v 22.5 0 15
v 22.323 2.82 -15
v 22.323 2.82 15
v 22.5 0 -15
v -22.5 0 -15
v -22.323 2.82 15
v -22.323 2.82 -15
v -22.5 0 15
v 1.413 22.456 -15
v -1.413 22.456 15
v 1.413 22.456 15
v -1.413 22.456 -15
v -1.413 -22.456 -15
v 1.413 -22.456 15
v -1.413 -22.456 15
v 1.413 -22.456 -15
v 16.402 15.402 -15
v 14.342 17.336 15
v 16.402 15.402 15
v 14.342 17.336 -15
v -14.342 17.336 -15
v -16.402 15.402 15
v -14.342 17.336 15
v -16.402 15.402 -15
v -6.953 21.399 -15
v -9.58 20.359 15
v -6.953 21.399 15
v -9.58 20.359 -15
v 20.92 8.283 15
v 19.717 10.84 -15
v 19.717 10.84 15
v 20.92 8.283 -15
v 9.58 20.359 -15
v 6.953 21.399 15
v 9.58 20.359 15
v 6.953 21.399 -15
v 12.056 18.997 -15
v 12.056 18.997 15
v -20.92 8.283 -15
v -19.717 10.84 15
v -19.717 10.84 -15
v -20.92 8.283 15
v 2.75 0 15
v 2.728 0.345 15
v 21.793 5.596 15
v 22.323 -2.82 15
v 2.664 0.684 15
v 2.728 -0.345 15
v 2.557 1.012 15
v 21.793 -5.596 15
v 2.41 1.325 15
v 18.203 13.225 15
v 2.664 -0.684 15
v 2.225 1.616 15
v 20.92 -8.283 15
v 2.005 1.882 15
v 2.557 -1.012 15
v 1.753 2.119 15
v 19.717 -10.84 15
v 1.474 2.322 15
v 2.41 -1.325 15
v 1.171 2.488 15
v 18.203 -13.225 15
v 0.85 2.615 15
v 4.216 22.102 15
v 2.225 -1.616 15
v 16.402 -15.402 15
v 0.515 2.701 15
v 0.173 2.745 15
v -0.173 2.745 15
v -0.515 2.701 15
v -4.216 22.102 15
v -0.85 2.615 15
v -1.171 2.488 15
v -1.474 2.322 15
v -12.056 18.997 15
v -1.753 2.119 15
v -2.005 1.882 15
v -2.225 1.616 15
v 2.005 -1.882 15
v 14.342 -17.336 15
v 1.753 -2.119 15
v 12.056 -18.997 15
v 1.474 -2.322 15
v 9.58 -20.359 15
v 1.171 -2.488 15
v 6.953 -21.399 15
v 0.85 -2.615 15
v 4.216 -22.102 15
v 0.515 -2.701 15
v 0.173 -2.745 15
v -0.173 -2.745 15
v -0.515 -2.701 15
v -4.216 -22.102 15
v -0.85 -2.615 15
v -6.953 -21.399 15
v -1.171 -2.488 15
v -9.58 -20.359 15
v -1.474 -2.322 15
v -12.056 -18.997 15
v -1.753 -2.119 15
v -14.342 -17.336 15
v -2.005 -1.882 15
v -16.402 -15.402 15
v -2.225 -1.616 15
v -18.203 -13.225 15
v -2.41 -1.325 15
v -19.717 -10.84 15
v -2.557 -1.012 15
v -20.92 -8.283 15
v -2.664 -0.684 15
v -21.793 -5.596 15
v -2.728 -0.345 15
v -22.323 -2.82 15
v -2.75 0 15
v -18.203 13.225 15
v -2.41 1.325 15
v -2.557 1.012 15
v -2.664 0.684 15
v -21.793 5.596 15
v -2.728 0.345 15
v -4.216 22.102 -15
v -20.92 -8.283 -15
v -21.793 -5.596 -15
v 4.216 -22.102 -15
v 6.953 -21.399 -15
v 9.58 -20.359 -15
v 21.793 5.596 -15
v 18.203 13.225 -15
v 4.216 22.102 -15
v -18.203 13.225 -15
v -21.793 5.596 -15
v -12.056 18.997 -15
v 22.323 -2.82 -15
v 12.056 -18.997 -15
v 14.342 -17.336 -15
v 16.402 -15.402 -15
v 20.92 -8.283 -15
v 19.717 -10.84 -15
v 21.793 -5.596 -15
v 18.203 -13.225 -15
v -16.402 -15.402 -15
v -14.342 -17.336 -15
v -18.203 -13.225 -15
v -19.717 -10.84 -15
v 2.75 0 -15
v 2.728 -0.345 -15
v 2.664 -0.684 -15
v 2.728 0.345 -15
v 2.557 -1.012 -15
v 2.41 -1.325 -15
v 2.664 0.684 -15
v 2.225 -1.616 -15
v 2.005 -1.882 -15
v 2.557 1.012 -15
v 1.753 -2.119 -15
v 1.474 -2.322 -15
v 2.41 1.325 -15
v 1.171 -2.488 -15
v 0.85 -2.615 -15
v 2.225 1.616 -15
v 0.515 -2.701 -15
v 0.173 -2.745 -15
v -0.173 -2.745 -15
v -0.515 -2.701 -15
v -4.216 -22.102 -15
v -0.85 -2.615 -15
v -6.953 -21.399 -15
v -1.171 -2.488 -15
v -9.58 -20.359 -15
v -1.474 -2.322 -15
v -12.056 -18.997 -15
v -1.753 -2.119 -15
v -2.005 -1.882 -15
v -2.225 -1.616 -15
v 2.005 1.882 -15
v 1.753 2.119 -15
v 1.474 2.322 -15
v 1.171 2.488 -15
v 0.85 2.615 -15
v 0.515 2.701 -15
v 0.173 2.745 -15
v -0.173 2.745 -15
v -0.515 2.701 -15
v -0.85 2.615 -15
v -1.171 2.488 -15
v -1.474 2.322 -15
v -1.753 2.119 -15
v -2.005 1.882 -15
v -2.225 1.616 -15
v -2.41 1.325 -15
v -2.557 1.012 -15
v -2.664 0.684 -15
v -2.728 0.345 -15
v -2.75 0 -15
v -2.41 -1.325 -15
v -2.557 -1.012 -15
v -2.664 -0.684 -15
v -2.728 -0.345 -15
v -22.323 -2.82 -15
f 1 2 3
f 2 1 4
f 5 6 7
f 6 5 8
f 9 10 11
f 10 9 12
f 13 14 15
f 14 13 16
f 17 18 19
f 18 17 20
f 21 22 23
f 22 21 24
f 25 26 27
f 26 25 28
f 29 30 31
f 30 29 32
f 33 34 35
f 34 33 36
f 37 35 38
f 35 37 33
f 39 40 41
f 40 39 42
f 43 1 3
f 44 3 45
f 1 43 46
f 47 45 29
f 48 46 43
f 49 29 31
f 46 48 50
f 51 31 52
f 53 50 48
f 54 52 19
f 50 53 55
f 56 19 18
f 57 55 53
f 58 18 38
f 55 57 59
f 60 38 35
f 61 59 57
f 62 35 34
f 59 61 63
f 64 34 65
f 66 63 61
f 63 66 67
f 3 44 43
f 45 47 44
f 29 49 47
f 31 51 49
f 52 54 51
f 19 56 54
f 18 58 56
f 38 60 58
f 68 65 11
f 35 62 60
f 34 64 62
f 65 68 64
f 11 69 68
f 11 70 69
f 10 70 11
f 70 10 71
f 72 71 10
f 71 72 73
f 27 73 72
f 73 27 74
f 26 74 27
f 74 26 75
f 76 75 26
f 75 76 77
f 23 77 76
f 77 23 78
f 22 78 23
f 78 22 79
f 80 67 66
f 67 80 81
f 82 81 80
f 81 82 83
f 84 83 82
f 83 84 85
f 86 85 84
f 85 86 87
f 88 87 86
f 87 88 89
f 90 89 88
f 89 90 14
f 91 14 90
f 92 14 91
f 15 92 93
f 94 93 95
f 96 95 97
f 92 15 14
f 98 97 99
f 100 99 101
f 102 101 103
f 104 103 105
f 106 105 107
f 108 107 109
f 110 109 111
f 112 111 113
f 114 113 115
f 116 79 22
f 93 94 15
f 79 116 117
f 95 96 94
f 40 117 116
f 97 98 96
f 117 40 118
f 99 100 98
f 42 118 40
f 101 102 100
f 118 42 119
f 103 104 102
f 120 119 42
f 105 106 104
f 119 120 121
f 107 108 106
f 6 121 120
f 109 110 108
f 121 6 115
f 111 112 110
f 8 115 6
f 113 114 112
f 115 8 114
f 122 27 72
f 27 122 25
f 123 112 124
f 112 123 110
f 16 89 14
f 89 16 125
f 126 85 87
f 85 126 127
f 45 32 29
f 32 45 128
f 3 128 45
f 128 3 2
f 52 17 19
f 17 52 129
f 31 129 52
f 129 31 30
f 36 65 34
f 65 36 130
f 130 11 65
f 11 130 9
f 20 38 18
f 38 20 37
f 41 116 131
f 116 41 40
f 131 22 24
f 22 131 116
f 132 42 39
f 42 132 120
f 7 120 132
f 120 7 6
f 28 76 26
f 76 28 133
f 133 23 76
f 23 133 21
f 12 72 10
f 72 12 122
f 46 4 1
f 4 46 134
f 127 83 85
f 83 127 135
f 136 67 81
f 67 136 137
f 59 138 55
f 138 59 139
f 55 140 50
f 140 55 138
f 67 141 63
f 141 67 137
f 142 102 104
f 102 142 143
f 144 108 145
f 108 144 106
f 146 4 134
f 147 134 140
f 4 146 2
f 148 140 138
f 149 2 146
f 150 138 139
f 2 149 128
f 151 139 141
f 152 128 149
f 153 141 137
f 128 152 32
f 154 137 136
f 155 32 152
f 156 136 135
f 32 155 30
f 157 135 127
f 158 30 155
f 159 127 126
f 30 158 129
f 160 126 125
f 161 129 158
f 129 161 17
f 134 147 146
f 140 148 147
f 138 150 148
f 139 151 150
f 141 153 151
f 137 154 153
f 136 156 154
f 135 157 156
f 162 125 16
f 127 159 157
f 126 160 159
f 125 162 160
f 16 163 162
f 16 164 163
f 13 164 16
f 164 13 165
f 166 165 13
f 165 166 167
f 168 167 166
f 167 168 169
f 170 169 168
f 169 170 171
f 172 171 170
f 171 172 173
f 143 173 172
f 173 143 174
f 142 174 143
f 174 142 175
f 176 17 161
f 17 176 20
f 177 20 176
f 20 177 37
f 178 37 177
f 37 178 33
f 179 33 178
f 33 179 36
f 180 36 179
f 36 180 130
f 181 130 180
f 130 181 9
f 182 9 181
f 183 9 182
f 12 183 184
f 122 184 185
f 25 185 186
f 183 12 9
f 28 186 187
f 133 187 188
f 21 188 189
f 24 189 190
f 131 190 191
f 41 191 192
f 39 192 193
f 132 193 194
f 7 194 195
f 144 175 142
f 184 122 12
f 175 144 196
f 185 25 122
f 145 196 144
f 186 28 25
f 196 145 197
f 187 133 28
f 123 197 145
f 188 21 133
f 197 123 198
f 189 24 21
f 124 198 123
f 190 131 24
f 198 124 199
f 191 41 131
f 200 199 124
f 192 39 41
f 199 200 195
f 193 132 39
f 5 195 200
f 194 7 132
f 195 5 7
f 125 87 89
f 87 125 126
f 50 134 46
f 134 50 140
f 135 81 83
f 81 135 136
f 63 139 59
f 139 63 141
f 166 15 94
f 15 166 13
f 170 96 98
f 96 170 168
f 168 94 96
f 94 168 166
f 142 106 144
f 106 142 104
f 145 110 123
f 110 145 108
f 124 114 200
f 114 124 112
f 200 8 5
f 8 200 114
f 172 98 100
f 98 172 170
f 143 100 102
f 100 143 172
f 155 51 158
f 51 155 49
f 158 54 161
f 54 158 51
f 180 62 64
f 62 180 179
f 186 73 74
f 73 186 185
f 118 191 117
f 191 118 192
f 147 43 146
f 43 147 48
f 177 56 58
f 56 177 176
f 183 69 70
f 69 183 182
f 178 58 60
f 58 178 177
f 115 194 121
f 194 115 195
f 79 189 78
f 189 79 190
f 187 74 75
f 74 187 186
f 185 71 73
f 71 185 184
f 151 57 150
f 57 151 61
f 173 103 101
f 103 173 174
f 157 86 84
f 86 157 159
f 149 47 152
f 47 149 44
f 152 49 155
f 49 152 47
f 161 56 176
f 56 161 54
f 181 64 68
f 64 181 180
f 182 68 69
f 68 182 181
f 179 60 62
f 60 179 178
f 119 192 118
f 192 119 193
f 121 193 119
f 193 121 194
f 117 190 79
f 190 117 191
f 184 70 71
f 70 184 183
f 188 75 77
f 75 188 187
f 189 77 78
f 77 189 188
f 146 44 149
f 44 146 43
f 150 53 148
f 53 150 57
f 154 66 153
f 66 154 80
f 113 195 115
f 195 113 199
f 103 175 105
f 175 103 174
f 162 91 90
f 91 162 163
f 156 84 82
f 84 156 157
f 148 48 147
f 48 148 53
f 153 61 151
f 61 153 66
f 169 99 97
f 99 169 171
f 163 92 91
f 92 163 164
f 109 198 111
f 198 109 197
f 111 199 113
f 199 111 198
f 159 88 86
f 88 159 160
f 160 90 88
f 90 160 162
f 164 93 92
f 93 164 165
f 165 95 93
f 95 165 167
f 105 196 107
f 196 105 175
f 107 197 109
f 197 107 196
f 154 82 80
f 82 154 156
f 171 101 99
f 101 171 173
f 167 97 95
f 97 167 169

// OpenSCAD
$fn = 50;


difference() {
	union() {
		translate(v = [0, 0, -15.0000000000]) {
			cylinder(h = 30, r = 22.5000000000);
		}
	}
	union() {
		translate(v = [0, 0, -100.0000000000]) {
			cylinder(h = 200, r = 2.7500000000);
		}
	}
}
